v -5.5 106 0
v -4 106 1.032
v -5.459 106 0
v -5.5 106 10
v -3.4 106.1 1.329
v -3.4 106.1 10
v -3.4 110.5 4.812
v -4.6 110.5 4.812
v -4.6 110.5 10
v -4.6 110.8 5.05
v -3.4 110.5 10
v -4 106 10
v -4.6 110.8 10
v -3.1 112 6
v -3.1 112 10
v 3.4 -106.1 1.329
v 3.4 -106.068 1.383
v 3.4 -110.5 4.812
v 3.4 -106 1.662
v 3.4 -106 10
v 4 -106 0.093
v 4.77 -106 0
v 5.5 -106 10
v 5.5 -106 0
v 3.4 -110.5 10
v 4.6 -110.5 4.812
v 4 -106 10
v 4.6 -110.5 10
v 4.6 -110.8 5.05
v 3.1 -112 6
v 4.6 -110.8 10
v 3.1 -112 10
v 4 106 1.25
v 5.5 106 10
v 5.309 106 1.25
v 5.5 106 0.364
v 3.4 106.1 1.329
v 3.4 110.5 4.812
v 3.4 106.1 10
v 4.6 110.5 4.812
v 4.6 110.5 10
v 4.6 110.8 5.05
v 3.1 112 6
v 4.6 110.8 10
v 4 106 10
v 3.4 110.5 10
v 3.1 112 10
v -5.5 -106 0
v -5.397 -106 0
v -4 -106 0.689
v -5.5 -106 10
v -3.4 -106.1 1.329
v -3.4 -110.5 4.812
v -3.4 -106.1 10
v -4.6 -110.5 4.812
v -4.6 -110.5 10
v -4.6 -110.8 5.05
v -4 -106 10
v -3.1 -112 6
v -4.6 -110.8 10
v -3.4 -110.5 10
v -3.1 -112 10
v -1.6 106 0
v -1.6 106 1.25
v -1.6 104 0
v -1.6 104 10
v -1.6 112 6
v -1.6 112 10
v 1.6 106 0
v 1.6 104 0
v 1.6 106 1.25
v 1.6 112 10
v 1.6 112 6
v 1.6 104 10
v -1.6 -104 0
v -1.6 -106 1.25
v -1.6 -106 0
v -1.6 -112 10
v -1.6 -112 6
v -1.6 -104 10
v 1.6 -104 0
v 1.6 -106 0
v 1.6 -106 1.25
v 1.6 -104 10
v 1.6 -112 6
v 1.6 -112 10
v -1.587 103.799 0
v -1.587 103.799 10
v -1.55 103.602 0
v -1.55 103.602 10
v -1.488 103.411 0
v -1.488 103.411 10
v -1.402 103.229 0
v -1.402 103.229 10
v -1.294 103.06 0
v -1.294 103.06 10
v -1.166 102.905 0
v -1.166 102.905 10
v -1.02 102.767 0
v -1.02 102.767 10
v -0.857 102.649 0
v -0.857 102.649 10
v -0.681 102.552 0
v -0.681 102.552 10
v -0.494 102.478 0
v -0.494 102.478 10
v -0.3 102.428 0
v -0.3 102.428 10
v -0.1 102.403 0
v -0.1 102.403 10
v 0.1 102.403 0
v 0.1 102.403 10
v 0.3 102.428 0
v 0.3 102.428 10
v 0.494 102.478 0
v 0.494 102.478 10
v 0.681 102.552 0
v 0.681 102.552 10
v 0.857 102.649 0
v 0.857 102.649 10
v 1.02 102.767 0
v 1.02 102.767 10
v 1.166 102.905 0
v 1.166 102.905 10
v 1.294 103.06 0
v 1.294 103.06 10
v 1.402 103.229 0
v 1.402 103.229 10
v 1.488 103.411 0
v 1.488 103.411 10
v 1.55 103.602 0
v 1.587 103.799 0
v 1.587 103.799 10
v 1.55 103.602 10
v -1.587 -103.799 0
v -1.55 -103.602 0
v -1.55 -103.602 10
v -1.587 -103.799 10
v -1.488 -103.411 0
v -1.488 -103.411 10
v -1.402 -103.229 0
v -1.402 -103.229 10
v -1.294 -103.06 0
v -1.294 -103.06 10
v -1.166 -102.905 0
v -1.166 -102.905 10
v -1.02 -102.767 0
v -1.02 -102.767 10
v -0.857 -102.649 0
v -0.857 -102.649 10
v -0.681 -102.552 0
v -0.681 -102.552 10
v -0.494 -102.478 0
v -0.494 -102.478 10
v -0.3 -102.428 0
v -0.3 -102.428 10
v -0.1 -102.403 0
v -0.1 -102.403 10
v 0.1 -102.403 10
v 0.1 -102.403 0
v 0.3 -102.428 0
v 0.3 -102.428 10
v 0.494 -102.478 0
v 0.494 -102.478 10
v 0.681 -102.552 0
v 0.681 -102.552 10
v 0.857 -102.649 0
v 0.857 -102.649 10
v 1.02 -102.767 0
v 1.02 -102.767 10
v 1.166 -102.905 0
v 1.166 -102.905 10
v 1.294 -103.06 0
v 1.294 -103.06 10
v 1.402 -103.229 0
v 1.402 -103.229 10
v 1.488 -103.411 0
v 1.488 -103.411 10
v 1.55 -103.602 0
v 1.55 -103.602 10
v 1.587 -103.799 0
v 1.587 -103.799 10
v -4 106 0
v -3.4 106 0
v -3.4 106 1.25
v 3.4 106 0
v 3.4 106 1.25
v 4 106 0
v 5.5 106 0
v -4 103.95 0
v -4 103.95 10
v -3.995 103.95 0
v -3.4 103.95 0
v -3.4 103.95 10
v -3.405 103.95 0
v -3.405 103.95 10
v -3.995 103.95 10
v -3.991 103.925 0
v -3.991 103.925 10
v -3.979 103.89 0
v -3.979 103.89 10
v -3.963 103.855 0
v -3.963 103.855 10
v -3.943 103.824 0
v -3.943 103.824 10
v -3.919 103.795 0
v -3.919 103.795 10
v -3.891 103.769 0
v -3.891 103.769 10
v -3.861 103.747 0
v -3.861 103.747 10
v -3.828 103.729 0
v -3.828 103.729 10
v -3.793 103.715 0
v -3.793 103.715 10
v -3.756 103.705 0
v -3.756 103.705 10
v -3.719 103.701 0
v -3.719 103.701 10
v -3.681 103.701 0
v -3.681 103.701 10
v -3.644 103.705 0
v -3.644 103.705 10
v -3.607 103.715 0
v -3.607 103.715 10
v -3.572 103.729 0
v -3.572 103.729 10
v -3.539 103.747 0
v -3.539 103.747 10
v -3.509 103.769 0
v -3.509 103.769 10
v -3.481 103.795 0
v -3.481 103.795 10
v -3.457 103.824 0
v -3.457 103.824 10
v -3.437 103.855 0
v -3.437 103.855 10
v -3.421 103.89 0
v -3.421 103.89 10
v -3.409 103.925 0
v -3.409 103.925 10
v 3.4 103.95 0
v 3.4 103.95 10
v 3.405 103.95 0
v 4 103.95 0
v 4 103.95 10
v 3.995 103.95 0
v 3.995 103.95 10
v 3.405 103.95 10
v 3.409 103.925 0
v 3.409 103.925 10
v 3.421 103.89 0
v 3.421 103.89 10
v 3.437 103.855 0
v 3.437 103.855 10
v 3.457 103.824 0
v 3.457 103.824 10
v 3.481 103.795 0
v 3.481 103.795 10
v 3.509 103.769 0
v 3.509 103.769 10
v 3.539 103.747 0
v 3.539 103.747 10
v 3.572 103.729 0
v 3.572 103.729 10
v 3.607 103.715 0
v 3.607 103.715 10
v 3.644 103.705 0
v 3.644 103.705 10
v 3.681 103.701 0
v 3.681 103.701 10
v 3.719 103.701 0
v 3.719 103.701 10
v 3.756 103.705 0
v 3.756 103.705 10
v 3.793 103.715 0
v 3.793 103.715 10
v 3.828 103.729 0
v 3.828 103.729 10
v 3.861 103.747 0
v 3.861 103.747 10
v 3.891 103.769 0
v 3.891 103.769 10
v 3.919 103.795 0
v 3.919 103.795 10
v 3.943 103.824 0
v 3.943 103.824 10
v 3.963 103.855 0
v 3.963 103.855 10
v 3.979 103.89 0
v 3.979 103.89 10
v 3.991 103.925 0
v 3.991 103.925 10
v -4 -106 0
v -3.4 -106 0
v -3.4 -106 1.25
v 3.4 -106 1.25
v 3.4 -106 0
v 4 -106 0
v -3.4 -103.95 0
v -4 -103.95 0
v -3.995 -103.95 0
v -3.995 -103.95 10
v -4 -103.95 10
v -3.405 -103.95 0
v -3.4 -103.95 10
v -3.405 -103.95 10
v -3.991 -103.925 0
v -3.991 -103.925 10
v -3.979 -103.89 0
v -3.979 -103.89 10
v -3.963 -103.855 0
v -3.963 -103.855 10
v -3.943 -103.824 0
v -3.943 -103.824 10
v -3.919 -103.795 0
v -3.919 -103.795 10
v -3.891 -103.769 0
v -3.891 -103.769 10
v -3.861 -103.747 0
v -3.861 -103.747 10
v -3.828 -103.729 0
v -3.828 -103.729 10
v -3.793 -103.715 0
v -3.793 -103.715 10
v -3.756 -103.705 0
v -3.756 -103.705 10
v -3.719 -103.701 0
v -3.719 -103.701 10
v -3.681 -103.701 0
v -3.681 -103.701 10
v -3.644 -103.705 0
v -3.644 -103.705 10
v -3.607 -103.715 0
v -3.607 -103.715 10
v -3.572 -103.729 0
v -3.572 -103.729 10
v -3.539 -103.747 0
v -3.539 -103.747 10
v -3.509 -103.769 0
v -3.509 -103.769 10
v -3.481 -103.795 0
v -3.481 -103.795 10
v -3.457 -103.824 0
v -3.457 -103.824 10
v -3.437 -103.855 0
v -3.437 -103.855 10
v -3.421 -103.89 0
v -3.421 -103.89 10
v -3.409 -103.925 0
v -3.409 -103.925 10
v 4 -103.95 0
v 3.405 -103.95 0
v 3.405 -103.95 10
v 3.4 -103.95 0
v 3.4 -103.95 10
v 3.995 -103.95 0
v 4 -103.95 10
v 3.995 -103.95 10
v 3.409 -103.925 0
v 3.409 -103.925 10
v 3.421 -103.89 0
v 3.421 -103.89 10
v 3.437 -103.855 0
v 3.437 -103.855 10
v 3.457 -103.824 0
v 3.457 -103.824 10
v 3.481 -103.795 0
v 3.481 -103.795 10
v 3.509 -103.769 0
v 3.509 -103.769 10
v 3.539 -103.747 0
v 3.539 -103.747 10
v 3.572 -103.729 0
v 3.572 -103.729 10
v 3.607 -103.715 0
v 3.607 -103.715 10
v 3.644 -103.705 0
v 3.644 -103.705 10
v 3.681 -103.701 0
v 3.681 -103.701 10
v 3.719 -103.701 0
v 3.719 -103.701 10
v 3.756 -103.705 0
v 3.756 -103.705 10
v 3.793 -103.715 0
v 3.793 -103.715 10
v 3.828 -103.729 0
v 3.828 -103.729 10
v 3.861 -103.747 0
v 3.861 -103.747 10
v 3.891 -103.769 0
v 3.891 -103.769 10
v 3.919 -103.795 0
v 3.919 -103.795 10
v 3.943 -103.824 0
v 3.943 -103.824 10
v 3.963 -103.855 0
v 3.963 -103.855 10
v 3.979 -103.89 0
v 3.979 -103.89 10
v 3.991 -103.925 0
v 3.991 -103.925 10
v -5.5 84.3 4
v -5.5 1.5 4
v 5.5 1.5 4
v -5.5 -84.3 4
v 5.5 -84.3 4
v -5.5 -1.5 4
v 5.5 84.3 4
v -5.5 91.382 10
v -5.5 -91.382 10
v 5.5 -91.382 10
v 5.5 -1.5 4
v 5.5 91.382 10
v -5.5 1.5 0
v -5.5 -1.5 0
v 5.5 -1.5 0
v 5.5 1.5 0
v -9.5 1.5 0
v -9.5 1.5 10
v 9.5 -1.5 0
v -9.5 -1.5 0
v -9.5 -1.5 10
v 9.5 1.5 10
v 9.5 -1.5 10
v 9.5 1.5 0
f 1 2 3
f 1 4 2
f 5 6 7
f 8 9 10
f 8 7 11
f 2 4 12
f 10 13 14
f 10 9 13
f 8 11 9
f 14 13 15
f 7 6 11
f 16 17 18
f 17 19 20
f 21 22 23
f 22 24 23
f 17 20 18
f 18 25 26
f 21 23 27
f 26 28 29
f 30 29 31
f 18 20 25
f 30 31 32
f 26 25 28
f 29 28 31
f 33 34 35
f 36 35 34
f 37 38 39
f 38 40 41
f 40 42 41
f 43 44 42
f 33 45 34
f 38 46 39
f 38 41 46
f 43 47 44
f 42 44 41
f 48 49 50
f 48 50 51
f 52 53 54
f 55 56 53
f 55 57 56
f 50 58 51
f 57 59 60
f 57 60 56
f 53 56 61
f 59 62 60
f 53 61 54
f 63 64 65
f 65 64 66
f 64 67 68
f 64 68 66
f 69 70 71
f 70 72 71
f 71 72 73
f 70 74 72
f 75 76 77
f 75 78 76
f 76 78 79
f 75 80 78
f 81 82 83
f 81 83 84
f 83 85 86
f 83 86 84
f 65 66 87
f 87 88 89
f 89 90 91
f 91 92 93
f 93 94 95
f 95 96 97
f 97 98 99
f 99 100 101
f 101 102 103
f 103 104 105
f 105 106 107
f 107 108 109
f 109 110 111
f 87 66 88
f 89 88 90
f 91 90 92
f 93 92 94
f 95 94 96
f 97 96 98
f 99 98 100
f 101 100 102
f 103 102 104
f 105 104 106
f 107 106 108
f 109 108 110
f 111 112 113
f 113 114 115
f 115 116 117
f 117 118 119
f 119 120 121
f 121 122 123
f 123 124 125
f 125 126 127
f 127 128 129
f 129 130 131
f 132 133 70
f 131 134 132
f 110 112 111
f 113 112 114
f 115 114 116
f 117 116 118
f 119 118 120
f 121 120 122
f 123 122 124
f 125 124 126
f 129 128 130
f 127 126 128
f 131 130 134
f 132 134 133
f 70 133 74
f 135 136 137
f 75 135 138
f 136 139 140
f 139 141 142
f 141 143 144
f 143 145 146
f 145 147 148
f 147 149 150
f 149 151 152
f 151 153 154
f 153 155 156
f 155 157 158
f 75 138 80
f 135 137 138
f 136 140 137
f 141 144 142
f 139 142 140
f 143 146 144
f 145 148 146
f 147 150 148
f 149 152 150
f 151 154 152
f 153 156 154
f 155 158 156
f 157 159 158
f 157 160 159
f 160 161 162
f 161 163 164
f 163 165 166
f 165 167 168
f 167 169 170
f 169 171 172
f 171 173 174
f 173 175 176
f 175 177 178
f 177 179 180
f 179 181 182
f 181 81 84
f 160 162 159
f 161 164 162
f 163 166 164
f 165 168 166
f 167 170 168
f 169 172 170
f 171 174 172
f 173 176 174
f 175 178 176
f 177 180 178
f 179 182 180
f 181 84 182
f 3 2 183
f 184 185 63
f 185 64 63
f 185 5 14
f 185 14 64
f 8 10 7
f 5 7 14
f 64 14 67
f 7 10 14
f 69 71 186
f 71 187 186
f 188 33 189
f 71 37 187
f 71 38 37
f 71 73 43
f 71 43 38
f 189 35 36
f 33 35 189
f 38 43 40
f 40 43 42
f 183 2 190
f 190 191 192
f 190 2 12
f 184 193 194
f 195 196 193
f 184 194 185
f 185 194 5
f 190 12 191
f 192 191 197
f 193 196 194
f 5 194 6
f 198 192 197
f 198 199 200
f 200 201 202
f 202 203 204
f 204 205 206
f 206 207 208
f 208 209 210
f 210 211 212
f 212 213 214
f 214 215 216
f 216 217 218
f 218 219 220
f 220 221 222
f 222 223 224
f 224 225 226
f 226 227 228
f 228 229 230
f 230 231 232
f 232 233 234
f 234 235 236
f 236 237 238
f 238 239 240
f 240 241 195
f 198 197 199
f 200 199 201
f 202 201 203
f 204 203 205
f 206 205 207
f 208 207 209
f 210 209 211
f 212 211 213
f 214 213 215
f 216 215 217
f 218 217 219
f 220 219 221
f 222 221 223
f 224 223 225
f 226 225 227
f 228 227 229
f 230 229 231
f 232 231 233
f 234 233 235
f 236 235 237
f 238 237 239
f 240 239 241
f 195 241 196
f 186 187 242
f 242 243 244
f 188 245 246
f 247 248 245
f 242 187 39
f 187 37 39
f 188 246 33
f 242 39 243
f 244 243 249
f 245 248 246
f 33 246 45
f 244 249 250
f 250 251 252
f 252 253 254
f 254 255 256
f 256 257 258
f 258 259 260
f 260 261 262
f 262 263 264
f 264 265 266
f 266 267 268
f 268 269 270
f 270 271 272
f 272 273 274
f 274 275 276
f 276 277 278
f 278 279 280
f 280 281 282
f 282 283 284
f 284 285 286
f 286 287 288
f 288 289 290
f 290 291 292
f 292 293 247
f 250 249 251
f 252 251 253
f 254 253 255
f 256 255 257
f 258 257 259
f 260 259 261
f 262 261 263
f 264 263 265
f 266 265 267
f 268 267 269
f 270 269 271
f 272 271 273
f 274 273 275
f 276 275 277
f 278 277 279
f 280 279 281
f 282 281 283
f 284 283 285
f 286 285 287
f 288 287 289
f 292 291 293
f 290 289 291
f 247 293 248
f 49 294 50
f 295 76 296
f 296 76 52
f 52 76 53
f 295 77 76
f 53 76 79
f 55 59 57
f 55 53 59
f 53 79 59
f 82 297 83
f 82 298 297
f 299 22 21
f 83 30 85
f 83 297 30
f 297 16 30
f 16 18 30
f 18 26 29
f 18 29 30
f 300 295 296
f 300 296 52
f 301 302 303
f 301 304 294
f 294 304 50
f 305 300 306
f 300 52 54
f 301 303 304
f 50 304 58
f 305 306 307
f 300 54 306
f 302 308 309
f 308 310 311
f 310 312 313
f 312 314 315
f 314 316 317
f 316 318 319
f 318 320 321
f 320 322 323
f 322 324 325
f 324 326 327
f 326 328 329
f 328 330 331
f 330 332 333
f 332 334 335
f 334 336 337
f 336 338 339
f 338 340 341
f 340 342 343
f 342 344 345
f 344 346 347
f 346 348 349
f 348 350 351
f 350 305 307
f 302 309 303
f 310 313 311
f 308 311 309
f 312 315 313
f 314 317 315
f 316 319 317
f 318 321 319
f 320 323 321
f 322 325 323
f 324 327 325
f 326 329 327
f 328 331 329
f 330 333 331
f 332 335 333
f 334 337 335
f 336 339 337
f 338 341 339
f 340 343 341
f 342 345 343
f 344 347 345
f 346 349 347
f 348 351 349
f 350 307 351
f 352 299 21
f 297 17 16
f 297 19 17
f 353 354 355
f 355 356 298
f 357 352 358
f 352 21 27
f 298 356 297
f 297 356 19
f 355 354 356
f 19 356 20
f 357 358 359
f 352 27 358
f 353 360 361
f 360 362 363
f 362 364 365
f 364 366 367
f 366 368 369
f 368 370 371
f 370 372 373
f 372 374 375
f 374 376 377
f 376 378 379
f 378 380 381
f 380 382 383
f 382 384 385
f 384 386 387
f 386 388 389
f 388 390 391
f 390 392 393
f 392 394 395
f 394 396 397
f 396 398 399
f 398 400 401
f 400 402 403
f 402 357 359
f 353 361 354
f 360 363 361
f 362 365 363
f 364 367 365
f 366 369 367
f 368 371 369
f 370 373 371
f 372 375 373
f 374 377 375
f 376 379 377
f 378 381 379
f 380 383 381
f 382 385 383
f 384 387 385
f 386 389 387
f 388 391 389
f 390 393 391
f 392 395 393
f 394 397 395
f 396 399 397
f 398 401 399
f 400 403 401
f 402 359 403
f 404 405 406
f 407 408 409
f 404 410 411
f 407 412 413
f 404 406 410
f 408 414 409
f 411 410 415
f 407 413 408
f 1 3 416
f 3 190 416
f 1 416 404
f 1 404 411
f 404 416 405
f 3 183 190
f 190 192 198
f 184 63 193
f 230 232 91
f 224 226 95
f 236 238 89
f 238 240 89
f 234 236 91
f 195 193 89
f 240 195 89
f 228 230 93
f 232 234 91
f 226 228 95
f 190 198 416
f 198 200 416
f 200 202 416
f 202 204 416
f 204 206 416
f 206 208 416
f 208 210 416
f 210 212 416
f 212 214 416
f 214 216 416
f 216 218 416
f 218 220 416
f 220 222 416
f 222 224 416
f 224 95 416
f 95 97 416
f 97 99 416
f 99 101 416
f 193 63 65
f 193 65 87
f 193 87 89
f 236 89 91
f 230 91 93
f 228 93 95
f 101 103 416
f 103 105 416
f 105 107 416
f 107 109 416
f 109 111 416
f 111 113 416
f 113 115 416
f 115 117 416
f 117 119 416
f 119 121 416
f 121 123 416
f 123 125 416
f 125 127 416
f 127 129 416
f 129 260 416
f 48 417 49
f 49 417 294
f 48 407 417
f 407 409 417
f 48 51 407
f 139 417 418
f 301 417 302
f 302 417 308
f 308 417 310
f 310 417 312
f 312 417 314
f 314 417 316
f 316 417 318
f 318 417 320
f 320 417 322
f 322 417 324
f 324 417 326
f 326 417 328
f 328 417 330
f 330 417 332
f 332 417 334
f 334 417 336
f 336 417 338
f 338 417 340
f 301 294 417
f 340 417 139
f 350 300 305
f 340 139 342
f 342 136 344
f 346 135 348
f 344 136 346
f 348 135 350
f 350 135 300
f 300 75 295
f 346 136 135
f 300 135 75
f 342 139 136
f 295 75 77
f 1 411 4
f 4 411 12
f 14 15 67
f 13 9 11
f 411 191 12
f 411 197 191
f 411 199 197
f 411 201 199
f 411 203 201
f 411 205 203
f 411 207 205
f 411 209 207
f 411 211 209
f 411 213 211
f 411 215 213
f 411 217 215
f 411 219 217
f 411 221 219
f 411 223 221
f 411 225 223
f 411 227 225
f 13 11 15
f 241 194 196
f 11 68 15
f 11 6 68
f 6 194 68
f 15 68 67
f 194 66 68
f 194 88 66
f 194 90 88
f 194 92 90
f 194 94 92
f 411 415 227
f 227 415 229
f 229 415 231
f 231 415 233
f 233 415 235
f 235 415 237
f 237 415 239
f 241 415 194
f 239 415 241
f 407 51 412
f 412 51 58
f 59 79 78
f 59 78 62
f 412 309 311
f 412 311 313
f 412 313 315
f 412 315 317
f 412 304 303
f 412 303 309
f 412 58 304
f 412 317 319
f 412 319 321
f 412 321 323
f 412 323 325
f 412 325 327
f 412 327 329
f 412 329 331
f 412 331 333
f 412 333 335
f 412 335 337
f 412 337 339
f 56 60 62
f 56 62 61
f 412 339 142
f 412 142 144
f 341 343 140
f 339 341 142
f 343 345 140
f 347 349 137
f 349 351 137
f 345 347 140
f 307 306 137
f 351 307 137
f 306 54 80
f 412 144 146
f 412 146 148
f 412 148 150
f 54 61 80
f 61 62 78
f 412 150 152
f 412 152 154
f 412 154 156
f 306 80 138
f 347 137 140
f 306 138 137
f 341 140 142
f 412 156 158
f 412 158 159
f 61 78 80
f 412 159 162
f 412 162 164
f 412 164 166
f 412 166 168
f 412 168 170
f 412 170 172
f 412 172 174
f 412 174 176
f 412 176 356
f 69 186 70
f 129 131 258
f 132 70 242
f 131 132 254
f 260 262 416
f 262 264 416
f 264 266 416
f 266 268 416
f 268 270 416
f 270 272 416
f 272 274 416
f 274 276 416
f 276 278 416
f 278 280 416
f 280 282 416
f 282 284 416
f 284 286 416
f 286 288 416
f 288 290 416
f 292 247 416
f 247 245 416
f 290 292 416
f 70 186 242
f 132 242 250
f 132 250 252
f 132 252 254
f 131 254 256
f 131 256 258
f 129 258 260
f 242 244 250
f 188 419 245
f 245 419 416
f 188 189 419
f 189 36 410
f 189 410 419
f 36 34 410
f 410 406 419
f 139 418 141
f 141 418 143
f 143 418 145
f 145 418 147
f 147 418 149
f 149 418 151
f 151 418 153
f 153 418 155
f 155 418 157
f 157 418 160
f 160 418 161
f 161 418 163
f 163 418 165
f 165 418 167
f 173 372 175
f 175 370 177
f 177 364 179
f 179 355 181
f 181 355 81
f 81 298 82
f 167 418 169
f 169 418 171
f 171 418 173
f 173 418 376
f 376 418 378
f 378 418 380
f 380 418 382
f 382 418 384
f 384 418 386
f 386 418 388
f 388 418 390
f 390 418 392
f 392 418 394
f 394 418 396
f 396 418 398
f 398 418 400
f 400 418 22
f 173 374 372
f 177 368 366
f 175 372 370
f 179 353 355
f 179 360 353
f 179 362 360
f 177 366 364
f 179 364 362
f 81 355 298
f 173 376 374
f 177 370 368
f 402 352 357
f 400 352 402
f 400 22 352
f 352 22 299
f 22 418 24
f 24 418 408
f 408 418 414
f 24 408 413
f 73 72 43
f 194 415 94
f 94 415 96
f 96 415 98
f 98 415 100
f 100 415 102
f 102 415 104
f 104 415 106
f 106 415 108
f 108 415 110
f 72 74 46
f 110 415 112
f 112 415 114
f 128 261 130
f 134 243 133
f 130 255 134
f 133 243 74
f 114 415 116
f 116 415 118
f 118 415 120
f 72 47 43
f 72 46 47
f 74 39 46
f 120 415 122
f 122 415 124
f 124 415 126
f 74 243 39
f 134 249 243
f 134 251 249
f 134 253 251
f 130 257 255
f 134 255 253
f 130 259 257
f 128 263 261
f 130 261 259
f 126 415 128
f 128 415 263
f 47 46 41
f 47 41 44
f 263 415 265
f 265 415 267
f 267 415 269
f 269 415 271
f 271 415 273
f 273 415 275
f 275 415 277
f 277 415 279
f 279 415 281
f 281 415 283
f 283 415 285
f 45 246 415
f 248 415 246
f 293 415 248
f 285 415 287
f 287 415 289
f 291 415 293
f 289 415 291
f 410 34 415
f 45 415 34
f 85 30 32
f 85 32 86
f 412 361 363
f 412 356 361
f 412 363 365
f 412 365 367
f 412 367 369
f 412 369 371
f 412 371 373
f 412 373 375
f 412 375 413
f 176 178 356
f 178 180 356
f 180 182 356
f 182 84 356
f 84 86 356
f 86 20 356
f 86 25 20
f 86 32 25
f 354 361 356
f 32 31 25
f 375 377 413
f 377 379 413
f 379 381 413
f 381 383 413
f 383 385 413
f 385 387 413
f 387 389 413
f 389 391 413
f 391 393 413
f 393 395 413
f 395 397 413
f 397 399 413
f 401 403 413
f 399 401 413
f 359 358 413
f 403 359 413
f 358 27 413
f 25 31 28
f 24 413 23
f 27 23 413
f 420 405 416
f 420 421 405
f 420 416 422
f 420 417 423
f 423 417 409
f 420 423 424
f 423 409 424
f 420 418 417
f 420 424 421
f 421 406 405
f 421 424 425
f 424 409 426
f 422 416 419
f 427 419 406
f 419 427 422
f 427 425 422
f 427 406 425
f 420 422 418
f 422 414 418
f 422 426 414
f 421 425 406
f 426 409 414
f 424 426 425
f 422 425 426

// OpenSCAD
$fn = 50;

difference() {
	union() {
		translate(v = [0, 106.0, 0]) {
			rotate(a = [90, 0, 0]) {
				difference() {
					union() {
						translate(v = [0, 0, 0]) {
							rotate(a = [0, 0, 0]) {
								difference() {
									union() {
										translate(v = [-5.5, 0, -6.0]) {
											cube(size = [11.0, 10.0, 224.0]);
										}
									}
									union() {
										translate(v = [0, 0, 0]) {
											rotate(a = [0, 0, 0]) {
												difference() {
													union() {
														translate(v = [0, 10.1, 0]) {
															rotate(a = [90, 0, 0]) {
																linear_extrude(height = 10.2) {
																	polygon(points = [[-3.1, -6.1], [-3.1, -6.0], [-4.6, -4.8], [-4.6, -4.5], [-3.4, -4.5], [-3.4, 0], [-5.6, 0], [-5.6, -6.1]]);
																}
															}
														}
														translate(v = [0, 10.1, 0]) {
															rotate(a = [90, 0, 0]) {
																linear_extrude(height = 10.2) {
																	polygon(points = [[3.1, -6.1], [3.1, -6.0], [4.6, -4.8], [4.6, -4.5], [3.4, -4.5], [3.4, 0], [5.6, 0], [5.6, -6.1]]);
																}
															}
														}
														translate(v = [-1.5999999999999999, -0.1, -6.1]) {
															cube(size = [3.1999999999999997, 10.2, 8.1]);
														}
														translate(v = [0, 10.1, 2.0]) {
															rotate(a = [90, 0, 0]) {
																cylinder(h = 10.2, r = 1.5999999999999999);
															}
														}
													}
													union();
												}
											}
										}
										translate(v = [0, 0, 212.0]) {
											rotate(a = [0, 180, 0]) {
												difference() {
													union() {
														translate(v = [0, 10.1, 0]) {
															rotate(a = [90, 0, 0]) {
																linear_extrude(height = 10.2) {
																	polygon(points = [[-3.1, -6.1], [-3.1, -6.0], [-4.6, -4.8], [-4.6, -4.5], [-3.4, -4.5], [-3.4, 0], [-5.6, 0], [-5.6, -6.1]]);
																}
															}
														}
														translate(v = [0, 10.1, 0]) {
															rotate(a = [90, 0, 0]) {
																linear_extrude(height = 10.2) {
																	polygon(points = [[3.1, -6.1], [3.1, -6.0], [4.6, -4.8], [4.6, -4.5], [3.4, -4.5], [3.4, 0], [5.6, 0], [5.6, -6.1]]);
																}
															}
														}
														translate(v = [-1.5999999999999999, -0.1, -6.1]) {
															cube(size = [3.1999999999999997, 10.2, 8.1]);
														}
														translate(v = [0, 10.1, 2.0]) {
															rotate(a = [90, 0, 0]) {
																cylinder(h = 10.2, r = 1.5999999999999999);
															}
														}
													}
													union();
												}
											}
										}
										translate(v = [-5.6, 0, 0]) {
											rotate(a = [90, 0, 90]) {
												linear_extrude(height = 11.2) {
													polygon(points = [[-0.1, -6.1], [6.079166666666667, -6.1], [1.25, 0], [-0.1, 0]]);
												}
											}
										}
										translate(v = [0, 10.1, 0]) {
											rotate(a = [90, 0, 0]) {
												linear_extrude(height = 10.2) {
													polygon(points = [[-3.4, -0.1], [-4.0, -0.1], [-4.0, 2.05], [-3.4, 2.05]]);
												}
											}
										}
										translate(v = [-3.6999999999999997, 10.1, 2.0]) {
											rotate(a = [90, 0, 0]) {
												cylinder(h = 10.2, r = 0.3);
											}
										}
										translate(v = [0, 10.1, 0]) {
											rotate(a = [90, 0, 0]) {
												linear_extrude(height = 10.2) {
													polygon(points = [[3.4, -0.1], [4.0, -0.1], [4.0, 2.05], [3.4, 2.05]]);
												}
											}
										}
										translate(v = [3.6999999999999997, 10.1, 2.0]) {
											rotate(a = [90, 0, 0]) {
												cylinder(h = 10.2, r = 0.3);
											}
										}
										translate(v = [-5.6, 0, 0]) {
											rotate(a = [90, 0, 90]) {
												linear_extrude(height = 11.2) {
													polygon(points = [[-0.1, 218.1], [6.079166666666667, 218.1], [1.25, 212.0], [-0.1, 212.0]]);
												}
											}
										}
										translate(v = [0, 10.1, 0]) {
											rotate(a = [90, 0, 0]) {
												linear_extrude(height = 10.2) {
													polygon(points = [[-3.4, 212.1], [-4.0, 212.1], [-4.0, 209.95], [-3.4, 209.95]]);
												}
											}
										}
										translate(v = [-3.6999999999999997, 10.1, 210.0]) {
											rotate(a = [90, 0, 0]) {
												cylinder(h = 10.2, r = 0.3);
											}
										}
										translate(v = [0, 10.1, 0]) {
											rotate(a = [90, 0, 0]) {
												linear_extrude(height = 10.2) {
													polygon(points = [[3.4, 212.1], [4.0, 212.1], [4.0, 209.95], [3.4, 209.95]]);
												}
											}
										}
										translate(v = [3.6999999999999997, 10.1, 210.0]) {
											rotate(a = [90, 0, 0]) {
												cylinder(h = 10.2, r = 0.3);
											}
										}
										translate(v = [-5.6, 0, 0]) {
											rotate(a = [90, 0, 90]) {
												linear_extrude(height = 11.2) {
													polygon(points = [[10.1, 14.5], [10.1, 197.5], [4.0, 190.3], [4.0, 21.7]]);
												}
											}
										}
									}
								}
							}
						}
						translate(v = [-9.5, 0, 104.5]) {
							cube(size = [19.0, 10.0, 3.0]);
						}
					}
					union();
				}
			}
		}
	}
	union();
}
